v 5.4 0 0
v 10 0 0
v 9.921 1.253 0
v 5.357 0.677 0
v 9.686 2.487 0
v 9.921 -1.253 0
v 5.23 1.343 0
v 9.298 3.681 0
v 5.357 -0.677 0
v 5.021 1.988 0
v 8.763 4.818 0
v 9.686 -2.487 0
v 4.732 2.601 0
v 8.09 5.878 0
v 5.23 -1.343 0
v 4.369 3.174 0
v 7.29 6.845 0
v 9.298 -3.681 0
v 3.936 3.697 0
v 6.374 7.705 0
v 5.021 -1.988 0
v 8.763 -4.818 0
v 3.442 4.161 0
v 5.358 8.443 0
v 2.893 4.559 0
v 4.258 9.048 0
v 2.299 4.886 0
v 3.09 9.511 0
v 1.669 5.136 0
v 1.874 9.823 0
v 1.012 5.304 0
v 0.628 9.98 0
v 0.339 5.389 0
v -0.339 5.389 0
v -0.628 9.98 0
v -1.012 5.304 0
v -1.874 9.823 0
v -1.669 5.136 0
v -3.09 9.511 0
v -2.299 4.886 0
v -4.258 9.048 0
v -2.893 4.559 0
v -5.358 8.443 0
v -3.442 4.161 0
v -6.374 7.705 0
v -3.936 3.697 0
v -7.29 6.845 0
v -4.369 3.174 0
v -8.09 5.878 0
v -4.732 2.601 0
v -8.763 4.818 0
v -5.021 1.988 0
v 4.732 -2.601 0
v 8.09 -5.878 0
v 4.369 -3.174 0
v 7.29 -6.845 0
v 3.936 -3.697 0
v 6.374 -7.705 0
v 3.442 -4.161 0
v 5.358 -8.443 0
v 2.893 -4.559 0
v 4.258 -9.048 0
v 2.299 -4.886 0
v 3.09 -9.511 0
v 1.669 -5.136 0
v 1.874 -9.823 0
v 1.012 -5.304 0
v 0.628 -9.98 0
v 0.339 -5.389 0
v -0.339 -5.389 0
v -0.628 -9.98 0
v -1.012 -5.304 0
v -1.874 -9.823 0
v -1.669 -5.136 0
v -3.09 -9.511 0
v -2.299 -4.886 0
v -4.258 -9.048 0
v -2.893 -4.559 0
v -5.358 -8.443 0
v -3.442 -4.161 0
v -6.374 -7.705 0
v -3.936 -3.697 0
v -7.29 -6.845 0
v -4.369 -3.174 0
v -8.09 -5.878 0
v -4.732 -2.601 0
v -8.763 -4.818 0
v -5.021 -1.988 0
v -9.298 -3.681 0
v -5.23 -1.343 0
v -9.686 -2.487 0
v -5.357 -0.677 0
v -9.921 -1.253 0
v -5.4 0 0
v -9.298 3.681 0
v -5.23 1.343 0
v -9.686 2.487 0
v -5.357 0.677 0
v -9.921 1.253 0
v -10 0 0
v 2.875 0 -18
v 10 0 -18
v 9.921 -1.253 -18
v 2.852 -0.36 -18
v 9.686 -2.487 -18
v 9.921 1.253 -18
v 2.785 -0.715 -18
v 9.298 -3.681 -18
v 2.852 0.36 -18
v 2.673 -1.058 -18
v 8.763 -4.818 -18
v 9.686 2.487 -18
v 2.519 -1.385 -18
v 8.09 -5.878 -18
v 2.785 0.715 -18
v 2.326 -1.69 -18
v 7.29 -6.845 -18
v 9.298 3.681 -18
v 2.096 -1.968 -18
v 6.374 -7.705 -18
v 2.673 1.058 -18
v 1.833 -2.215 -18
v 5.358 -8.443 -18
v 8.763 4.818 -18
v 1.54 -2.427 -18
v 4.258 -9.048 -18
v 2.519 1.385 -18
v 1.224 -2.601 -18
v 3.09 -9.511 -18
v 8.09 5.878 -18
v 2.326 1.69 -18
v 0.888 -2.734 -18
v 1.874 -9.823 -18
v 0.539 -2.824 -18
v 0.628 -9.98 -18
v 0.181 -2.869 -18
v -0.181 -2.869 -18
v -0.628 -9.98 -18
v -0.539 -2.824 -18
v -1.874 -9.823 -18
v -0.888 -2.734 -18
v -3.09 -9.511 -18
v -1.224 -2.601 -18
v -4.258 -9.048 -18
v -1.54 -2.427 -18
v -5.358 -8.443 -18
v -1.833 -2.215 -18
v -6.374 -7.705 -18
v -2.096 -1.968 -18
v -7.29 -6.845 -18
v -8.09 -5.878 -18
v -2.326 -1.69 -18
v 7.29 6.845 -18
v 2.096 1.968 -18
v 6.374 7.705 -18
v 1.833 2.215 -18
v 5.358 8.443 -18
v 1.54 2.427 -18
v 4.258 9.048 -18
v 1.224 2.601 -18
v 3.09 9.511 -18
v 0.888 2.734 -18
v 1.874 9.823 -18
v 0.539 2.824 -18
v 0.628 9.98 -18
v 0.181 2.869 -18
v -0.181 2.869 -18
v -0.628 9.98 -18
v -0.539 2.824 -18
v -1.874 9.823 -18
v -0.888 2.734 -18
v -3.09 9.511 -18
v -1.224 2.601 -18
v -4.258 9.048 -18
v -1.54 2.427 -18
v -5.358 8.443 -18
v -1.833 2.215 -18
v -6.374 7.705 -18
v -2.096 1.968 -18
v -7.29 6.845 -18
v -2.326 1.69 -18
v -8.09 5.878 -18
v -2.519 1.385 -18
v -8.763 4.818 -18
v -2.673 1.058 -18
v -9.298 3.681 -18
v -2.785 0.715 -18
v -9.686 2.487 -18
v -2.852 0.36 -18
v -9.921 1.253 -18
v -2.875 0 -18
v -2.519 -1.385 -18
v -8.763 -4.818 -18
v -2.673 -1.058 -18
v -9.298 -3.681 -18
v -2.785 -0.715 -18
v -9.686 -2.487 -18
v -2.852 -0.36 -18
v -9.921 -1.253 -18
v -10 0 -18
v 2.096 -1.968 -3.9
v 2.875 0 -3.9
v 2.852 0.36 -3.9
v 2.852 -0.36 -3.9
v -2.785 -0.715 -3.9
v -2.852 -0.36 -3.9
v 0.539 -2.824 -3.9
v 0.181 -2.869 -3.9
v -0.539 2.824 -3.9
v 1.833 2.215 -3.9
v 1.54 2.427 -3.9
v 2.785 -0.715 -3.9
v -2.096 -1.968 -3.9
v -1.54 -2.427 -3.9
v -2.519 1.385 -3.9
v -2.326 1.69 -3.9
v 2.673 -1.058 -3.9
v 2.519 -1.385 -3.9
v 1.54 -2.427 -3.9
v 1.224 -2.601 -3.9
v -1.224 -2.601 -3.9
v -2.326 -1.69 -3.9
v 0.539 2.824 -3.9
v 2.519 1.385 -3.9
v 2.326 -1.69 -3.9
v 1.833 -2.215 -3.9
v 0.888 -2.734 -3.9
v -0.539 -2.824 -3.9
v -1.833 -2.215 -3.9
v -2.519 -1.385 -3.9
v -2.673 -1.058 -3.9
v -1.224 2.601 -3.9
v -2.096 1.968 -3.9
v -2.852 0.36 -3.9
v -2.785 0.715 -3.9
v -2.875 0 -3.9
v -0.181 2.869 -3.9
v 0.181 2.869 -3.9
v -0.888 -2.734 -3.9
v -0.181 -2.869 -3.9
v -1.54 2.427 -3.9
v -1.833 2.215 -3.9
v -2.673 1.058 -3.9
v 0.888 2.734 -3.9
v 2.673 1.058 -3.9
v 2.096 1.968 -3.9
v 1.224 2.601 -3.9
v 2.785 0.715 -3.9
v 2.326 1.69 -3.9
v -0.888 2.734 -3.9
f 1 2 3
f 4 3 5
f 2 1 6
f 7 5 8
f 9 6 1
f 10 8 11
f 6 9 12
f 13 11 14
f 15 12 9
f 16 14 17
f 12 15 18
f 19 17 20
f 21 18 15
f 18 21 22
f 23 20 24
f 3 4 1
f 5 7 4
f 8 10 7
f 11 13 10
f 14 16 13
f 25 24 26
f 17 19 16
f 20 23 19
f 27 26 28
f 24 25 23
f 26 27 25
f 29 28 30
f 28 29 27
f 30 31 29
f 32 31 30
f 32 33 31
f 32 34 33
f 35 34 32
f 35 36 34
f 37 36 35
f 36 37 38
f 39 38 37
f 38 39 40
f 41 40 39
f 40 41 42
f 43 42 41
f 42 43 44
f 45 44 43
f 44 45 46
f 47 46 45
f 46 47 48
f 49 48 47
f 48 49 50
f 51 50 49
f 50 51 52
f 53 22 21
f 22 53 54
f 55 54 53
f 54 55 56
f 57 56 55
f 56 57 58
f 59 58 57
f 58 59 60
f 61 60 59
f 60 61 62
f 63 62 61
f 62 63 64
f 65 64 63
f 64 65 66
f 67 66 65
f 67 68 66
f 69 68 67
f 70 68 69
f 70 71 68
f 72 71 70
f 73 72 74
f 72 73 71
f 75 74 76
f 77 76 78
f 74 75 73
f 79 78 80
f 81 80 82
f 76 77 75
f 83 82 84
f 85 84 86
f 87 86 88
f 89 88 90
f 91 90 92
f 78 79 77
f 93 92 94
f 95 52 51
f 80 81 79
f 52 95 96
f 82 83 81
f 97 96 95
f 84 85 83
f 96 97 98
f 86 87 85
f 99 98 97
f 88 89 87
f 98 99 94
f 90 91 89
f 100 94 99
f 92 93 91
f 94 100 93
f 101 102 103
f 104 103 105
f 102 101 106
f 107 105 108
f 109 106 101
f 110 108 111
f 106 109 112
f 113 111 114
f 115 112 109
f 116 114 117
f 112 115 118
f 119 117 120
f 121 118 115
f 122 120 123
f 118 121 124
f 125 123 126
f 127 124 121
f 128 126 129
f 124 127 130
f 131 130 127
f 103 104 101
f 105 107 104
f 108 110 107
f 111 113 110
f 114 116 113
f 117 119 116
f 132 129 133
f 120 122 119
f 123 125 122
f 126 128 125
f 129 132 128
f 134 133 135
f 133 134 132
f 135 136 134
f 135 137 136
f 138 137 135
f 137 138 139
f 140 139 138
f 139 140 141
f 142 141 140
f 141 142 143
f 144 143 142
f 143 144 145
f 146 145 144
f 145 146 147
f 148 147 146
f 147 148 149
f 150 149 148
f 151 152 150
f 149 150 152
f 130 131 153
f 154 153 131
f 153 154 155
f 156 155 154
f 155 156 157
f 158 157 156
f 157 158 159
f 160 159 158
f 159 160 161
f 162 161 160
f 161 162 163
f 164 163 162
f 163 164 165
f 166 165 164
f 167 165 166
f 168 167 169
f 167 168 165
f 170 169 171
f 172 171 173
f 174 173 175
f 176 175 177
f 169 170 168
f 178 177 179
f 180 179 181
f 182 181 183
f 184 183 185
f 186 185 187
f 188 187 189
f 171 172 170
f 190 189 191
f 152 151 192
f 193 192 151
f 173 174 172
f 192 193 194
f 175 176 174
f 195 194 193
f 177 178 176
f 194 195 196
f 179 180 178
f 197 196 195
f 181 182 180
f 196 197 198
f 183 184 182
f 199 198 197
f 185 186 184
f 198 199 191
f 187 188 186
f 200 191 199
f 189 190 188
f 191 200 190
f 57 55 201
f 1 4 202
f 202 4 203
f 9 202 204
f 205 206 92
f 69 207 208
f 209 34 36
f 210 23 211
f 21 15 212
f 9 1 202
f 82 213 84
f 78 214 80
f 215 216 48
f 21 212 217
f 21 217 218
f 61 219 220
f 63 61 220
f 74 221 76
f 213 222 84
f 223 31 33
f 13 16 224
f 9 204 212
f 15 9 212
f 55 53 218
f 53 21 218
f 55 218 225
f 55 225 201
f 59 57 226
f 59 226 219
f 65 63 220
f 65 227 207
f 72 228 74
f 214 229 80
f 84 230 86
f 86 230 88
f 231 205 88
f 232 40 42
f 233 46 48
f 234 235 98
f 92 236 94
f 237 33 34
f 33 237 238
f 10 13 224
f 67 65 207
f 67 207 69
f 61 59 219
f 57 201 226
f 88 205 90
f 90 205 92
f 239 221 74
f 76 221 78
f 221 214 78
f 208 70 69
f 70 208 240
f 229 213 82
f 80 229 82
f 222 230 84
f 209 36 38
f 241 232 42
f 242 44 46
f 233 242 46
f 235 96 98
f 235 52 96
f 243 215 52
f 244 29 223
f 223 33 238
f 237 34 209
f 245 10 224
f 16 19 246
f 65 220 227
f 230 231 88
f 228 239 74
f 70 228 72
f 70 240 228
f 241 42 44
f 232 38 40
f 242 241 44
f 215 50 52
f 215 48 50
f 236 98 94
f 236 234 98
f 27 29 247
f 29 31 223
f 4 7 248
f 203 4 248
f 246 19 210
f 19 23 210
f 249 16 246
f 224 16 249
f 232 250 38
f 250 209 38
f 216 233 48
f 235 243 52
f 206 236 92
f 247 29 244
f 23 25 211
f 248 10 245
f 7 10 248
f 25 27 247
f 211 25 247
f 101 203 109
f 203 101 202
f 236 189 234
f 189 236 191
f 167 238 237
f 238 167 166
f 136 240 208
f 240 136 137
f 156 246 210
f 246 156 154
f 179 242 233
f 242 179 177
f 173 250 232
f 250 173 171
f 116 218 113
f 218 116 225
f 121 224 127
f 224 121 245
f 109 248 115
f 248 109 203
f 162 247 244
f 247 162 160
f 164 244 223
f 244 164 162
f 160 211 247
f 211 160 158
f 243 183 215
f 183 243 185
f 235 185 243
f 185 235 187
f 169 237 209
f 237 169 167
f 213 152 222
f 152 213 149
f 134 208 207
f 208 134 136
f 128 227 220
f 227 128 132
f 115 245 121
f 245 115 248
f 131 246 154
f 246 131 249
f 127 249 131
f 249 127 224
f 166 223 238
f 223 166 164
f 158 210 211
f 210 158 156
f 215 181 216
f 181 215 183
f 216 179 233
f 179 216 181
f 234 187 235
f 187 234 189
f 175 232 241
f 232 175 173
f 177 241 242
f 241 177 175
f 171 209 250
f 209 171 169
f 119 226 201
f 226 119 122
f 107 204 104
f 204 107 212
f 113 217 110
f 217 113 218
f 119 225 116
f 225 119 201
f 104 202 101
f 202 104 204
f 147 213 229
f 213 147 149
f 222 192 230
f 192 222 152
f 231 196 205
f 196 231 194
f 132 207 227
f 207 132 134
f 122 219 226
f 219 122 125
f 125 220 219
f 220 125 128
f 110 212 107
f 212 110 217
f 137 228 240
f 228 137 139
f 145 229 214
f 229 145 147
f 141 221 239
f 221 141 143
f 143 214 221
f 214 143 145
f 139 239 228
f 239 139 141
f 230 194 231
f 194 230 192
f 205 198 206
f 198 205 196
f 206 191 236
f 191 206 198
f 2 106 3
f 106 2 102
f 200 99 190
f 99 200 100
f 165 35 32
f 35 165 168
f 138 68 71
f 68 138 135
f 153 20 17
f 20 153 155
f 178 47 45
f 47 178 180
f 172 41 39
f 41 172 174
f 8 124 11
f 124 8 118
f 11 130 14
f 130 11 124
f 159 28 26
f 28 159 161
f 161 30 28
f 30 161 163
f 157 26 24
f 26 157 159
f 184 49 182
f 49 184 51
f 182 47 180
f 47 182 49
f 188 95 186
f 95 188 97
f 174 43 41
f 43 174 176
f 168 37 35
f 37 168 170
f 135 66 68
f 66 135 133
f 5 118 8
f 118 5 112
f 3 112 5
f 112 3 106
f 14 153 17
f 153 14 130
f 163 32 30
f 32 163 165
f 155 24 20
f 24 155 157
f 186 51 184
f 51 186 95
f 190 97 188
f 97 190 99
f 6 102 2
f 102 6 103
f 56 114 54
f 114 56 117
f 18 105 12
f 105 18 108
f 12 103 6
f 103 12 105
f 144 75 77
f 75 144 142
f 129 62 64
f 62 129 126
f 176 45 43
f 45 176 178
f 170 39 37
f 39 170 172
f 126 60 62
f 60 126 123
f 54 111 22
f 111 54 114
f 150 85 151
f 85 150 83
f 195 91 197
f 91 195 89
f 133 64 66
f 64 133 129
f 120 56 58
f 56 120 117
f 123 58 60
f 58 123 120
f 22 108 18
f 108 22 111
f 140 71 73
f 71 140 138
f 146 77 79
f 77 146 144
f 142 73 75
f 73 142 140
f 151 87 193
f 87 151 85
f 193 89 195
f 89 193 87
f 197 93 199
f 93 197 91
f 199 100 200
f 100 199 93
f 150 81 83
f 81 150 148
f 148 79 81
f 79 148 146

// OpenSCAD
$fn = 50;


difference() {
	union() {
		translate(v = [0, 0, -18.0000000000]) {
			cylinder(h = 18, r = 10.0000000000);
		}
		cylinder(h = 0, r = 13.0000000000);
	}
	union() {
		translate(v = [0, 0, 0]) {
			rotate(a = [0, 0, 0]) {
				difference() {
					union() {
						#translate(v = [0, 0, -18.0000000000]) {
							cylinder(h = 18, r = 2.6000000000);
						}
						#translate(v = [0, 0, -3.9000000000]) {
							cylinder(h = 3.9000000000, r1 = 2.8750000000, r2 = 5.4000000000);
						}
						#translate(v = [0, 0, -18.0000000000]) {
							cylinder(h = 18, r = 2.8750000000);
						}
						#translate(v = [0, 0, -18.0000000000]) {
							cylinder(h = 18, r = 2.6000000000);
						}
					}
					union();
				}
			}
		}
	}
}
